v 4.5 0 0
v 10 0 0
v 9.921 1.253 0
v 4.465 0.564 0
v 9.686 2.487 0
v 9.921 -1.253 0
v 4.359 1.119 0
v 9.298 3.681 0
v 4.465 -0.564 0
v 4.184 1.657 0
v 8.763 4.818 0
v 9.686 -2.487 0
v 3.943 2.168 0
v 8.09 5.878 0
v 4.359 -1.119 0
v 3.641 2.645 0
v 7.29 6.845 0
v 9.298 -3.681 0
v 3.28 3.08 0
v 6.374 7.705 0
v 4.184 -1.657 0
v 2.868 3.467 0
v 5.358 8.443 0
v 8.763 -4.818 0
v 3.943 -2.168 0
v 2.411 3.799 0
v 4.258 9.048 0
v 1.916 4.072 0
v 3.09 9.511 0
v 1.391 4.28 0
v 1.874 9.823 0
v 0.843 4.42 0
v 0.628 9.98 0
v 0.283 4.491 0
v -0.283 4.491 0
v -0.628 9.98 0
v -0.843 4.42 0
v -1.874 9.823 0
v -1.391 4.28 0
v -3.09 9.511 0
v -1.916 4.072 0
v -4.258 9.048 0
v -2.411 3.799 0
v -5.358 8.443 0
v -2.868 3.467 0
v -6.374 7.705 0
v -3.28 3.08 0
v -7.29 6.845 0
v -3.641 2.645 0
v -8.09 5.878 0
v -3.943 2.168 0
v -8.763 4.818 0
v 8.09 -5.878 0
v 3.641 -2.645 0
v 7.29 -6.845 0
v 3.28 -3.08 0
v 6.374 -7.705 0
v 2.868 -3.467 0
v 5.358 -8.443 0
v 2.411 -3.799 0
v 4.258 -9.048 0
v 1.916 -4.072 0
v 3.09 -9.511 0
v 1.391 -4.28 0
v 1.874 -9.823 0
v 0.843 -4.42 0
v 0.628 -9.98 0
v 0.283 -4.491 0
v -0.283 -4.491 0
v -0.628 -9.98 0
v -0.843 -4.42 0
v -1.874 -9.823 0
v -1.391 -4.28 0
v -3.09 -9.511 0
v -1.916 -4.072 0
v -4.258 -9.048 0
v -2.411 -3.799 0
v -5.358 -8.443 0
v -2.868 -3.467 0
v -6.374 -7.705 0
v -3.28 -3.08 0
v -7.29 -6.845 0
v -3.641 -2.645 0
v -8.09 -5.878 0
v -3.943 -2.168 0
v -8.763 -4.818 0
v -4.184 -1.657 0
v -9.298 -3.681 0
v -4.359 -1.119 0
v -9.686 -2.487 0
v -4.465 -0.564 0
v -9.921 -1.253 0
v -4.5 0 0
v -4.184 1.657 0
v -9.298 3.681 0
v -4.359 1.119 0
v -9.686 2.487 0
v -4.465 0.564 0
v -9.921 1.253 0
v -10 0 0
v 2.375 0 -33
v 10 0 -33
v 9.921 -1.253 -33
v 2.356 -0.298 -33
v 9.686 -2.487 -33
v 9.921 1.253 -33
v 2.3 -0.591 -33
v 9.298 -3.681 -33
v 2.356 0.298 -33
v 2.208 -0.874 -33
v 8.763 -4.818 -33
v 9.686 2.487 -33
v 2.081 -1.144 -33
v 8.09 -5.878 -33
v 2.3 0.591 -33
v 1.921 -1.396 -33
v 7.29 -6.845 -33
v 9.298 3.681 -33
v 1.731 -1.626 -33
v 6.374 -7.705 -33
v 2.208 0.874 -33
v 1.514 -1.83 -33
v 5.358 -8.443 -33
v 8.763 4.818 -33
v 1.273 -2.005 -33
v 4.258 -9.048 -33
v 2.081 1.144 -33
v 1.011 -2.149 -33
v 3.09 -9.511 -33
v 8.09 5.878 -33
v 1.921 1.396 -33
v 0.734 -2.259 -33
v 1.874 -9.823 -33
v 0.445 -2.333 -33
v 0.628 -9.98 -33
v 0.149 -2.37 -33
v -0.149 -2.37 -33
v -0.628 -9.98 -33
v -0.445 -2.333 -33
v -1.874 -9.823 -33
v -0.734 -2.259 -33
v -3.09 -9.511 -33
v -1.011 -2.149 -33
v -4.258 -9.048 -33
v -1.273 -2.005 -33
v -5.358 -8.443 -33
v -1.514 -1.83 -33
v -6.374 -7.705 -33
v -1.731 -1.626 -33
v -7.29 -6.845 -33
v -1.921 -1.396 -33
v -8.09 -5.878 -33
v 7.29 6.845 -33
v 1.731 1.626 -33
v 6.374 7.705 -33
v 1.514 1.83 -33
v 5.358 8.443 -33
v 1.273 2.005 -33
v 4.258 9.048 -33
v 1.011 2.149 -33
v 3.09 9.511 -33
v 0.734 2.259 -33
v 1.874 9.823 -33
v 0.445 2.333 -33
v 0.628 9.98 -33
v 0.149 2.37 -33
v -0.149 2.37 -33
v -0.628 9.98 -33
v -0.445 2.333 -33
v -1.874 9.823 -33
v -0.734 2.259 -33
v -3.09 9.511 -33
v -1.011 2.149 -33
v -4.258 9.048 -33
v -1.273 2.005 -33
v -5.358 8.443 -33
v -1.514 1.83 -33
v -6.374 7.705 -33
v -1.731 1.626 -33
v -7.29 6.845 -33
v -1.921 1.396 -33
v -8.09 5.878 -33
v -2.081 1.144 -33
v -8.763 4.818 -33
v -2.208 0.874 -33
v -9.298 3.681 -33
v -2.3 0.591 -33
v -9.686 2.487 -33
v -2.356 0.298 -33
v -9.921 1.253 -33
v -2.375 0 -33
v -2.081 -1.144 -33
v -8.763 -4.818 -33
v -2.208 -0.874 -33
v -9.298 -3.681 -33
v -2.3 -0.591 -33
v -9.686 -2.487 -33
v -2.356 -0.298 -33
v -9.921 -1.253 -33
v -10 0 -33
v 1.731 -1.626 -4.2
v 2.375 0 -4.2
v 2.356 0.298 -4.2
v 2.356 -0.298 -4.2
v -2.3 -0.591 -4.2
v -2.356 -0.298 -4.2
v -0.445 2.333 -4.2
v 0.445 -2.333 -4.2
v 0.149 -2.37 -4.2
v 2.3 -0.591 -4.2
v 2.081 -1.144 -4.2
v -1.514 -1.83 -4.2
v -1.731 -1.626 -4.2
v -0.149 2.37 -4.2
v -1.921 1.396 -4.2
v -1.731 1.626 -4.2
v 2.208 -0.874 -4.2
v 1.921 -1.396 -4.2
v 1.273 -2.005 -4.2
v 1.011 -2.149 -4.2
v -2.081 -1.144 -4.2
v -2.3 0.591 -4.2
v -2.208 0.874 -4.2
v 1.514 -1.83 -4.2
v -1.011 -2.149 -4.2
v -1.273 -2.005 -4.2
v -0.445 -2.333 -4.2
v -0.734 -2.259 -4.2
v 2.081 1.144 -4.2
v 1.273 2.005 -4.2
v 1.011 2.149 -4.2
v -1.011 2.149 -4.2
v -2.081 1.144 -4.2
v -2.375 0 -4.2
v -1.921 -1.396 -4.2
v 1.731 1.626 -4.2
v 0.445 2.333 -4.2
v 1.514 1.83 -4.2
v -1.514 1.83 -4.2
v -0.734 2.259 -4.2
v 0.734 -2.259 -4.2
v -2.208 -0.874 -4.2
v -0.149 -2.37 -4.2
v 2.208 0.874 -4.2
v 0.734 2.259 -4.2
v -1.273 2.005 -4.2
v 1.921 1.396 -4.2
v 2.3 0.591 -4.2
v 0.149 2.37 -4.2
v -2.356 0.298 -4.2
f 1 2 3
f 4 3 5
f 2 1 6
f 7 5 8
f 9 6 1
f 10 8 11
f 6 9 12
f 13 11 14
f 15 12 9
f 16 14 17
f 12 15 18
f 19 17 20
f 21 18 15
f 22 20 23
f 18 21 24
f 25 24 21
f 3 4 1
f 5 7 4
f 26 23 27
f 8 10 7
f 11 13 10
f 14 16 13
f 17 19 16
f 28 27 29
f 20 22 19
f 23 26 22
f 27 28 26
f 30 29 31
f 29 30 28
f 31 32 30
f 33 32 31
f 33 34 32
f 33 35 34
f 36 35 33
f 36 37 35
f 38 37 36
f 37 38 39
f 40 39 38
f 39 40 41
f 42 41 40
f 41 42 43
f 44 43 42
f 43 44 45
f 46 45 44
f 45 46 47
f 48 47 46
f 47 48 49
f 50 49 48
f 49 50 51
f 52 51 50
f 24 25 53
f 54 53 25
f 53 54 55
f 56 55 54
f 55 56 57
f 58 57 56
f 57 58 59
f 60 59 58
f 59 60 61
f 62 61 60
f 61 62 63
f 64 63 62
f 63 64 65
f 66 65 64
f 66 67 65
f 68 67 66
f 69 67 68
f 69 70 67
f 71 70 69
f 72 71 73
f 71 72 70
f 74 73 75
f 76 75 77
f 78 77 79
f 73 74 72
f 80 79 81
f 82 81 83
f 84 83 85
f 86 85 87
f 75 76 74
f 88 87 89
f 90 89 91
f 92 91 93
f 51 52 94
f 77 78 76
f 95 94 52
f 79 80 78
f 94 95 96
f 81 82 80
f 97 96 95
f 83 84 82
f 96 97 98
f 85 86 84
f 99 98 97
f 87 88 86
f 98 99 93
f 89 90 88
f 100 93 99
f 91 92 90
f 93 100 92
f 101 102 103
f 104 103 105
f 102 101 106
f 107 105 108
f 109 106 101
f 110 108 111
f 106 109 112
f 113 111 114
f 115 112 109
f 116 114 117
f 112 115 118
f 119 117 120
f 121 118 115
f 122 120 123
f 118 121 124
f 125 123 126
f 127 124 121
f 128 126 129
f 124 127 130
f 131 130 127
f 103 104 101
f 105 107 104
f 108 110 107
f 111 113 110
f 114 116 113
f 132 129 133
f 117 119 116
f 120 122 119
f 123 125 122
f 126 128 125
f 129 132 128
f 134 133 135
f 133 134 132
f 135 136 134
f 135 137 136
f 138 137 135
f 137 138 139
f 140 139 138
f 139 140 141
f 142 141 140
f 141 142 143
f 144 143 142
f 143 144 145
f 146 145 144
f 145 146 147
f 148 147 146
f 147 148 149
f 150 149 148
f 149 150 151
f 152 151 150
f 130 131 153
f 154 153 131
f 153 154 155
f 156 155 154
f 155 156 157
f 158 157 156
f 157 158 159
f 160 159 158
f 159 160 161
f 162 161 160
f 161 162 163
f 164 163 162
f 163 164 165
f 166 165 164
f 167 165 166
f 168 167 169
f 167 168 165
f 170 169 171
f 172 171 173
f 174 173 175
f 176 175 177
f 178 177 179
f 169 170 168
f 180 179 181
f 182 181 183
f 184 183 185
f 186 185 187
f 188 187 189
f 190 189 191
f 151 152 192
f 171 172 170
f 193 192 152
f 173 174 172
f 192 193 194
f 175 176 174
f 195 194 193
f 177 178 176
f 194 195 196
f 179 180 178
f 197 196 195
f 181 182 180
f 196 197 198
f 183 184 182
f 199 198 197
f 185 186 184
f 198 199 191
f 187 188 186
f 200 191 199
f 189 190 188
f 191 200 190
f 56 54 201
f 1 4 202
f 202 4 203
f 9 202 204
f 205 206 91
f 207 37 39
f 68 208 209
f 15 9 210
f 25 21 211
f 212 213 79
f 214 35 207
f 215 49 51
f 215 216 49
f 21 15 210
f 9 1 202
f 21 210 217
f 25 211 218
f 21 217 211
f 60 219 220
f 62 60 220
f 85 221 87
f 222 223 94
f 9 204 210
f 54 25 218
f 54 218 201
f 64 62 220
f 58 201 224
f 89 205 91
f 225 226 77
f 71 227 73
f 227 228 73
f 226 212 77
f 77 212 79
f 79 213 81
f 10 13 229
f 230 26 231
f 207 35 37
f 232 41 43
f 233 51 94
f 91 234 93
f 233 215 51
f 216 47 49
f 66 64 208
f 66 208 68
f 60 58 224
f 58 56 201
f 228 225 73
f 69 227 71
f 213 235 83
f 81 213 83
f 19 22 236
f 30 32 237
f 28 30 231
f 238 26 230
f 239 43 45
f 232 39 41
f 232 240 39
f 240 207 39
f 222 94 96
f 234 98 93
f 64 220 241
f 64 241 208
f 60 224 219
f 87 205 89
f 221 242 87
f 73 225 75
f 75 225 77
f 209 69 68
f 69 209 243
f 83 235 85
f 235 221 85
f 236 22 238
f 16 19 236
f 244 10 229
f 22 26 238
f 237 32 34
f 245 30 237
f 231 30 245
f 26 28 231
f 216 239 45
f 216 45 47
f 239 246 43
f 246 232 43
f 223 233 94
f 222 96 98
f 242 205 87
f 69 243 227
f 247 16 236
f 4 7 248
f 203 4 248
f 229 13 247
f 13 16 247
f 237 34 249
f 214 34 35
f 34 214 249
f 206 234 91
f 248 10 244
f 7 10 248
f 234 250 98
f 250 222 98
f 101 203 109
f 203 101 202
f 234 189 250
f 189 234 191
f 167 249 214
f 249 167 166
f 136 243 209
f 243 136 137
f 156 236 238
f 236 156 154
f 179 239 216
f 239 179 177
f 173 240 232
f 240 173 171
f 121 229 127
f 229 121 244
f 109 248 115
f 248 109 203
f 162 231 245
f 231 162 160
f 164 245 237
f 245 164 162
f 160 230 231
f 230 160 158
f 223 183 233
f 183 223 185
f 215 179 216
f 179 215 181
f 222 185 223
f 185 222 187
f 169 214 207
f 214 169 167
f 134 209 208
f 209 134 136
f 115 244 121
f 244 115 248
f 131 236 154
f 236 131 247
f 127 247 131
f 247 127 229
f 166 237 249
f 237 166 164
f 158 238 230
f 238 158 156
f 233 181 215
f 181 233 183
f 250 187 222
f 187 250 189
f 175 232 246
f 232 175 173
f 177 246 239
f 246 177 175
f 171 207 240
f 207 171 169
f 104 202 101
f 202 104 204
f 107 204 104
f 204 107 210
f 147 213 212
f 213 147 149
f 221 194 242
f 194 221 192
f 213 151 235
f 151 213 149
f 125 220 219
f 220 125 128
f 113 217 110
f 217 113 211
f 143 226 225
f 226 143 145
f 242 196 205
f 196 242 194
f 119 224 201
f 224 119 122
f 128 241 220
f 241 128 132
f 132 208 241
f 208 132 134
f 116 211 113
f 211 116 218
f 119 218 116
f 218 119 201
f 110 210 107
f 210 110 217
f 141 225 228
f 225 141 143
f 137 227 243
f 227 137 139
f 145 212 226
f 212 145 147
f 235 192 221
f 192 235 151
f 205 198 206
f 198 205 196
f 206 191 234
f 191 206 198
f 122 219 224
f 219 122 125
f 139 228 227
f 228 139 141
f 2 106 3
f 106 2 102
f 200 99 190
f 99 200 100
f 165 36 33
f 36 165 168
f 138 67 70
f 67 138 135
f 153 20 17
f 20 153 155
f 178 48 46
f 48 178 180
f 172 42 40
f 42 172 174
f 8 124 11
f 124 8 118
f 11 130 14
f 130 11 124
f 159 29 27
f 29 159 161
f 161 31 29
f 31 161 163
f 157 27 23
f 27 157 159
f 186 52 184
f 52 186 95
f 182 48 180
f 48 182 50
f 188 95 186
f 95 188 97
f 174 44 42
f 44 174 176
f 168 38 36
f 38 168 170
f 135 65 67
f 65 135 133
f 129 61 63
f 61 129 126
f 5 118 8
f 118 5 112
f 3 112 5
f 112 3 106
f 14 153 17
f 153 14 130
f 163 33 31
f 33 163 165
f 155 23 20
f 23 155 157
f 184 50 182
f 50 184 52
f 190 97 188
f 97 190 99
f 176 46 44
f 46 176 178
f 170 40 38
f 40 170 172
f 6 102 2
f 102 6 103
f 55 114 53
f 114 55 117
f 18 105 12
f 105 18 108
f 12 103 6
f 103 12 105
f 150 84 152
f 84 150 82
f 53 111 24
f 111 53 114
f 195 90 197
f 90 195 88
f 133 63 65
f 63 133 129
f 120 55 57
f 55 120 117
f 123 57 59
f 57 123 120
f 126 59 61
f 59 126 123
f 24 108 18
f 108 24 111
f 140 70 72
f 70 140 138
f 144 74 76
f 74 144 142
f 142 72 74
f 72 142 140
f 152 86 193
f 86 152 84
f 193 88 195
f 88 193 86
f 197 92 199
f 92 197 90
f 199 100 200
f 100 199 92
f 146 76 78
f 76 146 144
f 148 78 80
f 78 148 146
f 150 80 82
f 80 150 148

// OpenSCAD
$fn = 50;


difference() {
	union() {
		translate(v = [0, 0, -33.0000000000]) {
			cylinder(h = 33, r = 10.0000000000);
		}
		cylinder(h = 0, r = 20.0000000000);
	}
	union() {
		translate(v = [0, 0, 0]) {
			rotate(a = [0, 0, 0]) {
				difference() {
					union() {
						#translate(v = [0, 0, -33.0000000000]) {
							cylinder(h = 33, r = 2.2500000000);
						}
						#translate(v = [0, 0, -4.2000000000]) {
							cylinder(h = 4.2000000000, r = 10.0000000000, r1 = 2.3750000000, r2 = 4.5000000000);
						}
						#translate(v = [0, 0, -33.0000000000]) {
							cylinder(h = 33, r = 2.3750000000);
						}
						#translate(v = [0, 0, -33.0000000000]) {
							cylinder(h = 33, r = 2.2500000000);
						}
					}
					union();
				}
			}
		}
	}
}
